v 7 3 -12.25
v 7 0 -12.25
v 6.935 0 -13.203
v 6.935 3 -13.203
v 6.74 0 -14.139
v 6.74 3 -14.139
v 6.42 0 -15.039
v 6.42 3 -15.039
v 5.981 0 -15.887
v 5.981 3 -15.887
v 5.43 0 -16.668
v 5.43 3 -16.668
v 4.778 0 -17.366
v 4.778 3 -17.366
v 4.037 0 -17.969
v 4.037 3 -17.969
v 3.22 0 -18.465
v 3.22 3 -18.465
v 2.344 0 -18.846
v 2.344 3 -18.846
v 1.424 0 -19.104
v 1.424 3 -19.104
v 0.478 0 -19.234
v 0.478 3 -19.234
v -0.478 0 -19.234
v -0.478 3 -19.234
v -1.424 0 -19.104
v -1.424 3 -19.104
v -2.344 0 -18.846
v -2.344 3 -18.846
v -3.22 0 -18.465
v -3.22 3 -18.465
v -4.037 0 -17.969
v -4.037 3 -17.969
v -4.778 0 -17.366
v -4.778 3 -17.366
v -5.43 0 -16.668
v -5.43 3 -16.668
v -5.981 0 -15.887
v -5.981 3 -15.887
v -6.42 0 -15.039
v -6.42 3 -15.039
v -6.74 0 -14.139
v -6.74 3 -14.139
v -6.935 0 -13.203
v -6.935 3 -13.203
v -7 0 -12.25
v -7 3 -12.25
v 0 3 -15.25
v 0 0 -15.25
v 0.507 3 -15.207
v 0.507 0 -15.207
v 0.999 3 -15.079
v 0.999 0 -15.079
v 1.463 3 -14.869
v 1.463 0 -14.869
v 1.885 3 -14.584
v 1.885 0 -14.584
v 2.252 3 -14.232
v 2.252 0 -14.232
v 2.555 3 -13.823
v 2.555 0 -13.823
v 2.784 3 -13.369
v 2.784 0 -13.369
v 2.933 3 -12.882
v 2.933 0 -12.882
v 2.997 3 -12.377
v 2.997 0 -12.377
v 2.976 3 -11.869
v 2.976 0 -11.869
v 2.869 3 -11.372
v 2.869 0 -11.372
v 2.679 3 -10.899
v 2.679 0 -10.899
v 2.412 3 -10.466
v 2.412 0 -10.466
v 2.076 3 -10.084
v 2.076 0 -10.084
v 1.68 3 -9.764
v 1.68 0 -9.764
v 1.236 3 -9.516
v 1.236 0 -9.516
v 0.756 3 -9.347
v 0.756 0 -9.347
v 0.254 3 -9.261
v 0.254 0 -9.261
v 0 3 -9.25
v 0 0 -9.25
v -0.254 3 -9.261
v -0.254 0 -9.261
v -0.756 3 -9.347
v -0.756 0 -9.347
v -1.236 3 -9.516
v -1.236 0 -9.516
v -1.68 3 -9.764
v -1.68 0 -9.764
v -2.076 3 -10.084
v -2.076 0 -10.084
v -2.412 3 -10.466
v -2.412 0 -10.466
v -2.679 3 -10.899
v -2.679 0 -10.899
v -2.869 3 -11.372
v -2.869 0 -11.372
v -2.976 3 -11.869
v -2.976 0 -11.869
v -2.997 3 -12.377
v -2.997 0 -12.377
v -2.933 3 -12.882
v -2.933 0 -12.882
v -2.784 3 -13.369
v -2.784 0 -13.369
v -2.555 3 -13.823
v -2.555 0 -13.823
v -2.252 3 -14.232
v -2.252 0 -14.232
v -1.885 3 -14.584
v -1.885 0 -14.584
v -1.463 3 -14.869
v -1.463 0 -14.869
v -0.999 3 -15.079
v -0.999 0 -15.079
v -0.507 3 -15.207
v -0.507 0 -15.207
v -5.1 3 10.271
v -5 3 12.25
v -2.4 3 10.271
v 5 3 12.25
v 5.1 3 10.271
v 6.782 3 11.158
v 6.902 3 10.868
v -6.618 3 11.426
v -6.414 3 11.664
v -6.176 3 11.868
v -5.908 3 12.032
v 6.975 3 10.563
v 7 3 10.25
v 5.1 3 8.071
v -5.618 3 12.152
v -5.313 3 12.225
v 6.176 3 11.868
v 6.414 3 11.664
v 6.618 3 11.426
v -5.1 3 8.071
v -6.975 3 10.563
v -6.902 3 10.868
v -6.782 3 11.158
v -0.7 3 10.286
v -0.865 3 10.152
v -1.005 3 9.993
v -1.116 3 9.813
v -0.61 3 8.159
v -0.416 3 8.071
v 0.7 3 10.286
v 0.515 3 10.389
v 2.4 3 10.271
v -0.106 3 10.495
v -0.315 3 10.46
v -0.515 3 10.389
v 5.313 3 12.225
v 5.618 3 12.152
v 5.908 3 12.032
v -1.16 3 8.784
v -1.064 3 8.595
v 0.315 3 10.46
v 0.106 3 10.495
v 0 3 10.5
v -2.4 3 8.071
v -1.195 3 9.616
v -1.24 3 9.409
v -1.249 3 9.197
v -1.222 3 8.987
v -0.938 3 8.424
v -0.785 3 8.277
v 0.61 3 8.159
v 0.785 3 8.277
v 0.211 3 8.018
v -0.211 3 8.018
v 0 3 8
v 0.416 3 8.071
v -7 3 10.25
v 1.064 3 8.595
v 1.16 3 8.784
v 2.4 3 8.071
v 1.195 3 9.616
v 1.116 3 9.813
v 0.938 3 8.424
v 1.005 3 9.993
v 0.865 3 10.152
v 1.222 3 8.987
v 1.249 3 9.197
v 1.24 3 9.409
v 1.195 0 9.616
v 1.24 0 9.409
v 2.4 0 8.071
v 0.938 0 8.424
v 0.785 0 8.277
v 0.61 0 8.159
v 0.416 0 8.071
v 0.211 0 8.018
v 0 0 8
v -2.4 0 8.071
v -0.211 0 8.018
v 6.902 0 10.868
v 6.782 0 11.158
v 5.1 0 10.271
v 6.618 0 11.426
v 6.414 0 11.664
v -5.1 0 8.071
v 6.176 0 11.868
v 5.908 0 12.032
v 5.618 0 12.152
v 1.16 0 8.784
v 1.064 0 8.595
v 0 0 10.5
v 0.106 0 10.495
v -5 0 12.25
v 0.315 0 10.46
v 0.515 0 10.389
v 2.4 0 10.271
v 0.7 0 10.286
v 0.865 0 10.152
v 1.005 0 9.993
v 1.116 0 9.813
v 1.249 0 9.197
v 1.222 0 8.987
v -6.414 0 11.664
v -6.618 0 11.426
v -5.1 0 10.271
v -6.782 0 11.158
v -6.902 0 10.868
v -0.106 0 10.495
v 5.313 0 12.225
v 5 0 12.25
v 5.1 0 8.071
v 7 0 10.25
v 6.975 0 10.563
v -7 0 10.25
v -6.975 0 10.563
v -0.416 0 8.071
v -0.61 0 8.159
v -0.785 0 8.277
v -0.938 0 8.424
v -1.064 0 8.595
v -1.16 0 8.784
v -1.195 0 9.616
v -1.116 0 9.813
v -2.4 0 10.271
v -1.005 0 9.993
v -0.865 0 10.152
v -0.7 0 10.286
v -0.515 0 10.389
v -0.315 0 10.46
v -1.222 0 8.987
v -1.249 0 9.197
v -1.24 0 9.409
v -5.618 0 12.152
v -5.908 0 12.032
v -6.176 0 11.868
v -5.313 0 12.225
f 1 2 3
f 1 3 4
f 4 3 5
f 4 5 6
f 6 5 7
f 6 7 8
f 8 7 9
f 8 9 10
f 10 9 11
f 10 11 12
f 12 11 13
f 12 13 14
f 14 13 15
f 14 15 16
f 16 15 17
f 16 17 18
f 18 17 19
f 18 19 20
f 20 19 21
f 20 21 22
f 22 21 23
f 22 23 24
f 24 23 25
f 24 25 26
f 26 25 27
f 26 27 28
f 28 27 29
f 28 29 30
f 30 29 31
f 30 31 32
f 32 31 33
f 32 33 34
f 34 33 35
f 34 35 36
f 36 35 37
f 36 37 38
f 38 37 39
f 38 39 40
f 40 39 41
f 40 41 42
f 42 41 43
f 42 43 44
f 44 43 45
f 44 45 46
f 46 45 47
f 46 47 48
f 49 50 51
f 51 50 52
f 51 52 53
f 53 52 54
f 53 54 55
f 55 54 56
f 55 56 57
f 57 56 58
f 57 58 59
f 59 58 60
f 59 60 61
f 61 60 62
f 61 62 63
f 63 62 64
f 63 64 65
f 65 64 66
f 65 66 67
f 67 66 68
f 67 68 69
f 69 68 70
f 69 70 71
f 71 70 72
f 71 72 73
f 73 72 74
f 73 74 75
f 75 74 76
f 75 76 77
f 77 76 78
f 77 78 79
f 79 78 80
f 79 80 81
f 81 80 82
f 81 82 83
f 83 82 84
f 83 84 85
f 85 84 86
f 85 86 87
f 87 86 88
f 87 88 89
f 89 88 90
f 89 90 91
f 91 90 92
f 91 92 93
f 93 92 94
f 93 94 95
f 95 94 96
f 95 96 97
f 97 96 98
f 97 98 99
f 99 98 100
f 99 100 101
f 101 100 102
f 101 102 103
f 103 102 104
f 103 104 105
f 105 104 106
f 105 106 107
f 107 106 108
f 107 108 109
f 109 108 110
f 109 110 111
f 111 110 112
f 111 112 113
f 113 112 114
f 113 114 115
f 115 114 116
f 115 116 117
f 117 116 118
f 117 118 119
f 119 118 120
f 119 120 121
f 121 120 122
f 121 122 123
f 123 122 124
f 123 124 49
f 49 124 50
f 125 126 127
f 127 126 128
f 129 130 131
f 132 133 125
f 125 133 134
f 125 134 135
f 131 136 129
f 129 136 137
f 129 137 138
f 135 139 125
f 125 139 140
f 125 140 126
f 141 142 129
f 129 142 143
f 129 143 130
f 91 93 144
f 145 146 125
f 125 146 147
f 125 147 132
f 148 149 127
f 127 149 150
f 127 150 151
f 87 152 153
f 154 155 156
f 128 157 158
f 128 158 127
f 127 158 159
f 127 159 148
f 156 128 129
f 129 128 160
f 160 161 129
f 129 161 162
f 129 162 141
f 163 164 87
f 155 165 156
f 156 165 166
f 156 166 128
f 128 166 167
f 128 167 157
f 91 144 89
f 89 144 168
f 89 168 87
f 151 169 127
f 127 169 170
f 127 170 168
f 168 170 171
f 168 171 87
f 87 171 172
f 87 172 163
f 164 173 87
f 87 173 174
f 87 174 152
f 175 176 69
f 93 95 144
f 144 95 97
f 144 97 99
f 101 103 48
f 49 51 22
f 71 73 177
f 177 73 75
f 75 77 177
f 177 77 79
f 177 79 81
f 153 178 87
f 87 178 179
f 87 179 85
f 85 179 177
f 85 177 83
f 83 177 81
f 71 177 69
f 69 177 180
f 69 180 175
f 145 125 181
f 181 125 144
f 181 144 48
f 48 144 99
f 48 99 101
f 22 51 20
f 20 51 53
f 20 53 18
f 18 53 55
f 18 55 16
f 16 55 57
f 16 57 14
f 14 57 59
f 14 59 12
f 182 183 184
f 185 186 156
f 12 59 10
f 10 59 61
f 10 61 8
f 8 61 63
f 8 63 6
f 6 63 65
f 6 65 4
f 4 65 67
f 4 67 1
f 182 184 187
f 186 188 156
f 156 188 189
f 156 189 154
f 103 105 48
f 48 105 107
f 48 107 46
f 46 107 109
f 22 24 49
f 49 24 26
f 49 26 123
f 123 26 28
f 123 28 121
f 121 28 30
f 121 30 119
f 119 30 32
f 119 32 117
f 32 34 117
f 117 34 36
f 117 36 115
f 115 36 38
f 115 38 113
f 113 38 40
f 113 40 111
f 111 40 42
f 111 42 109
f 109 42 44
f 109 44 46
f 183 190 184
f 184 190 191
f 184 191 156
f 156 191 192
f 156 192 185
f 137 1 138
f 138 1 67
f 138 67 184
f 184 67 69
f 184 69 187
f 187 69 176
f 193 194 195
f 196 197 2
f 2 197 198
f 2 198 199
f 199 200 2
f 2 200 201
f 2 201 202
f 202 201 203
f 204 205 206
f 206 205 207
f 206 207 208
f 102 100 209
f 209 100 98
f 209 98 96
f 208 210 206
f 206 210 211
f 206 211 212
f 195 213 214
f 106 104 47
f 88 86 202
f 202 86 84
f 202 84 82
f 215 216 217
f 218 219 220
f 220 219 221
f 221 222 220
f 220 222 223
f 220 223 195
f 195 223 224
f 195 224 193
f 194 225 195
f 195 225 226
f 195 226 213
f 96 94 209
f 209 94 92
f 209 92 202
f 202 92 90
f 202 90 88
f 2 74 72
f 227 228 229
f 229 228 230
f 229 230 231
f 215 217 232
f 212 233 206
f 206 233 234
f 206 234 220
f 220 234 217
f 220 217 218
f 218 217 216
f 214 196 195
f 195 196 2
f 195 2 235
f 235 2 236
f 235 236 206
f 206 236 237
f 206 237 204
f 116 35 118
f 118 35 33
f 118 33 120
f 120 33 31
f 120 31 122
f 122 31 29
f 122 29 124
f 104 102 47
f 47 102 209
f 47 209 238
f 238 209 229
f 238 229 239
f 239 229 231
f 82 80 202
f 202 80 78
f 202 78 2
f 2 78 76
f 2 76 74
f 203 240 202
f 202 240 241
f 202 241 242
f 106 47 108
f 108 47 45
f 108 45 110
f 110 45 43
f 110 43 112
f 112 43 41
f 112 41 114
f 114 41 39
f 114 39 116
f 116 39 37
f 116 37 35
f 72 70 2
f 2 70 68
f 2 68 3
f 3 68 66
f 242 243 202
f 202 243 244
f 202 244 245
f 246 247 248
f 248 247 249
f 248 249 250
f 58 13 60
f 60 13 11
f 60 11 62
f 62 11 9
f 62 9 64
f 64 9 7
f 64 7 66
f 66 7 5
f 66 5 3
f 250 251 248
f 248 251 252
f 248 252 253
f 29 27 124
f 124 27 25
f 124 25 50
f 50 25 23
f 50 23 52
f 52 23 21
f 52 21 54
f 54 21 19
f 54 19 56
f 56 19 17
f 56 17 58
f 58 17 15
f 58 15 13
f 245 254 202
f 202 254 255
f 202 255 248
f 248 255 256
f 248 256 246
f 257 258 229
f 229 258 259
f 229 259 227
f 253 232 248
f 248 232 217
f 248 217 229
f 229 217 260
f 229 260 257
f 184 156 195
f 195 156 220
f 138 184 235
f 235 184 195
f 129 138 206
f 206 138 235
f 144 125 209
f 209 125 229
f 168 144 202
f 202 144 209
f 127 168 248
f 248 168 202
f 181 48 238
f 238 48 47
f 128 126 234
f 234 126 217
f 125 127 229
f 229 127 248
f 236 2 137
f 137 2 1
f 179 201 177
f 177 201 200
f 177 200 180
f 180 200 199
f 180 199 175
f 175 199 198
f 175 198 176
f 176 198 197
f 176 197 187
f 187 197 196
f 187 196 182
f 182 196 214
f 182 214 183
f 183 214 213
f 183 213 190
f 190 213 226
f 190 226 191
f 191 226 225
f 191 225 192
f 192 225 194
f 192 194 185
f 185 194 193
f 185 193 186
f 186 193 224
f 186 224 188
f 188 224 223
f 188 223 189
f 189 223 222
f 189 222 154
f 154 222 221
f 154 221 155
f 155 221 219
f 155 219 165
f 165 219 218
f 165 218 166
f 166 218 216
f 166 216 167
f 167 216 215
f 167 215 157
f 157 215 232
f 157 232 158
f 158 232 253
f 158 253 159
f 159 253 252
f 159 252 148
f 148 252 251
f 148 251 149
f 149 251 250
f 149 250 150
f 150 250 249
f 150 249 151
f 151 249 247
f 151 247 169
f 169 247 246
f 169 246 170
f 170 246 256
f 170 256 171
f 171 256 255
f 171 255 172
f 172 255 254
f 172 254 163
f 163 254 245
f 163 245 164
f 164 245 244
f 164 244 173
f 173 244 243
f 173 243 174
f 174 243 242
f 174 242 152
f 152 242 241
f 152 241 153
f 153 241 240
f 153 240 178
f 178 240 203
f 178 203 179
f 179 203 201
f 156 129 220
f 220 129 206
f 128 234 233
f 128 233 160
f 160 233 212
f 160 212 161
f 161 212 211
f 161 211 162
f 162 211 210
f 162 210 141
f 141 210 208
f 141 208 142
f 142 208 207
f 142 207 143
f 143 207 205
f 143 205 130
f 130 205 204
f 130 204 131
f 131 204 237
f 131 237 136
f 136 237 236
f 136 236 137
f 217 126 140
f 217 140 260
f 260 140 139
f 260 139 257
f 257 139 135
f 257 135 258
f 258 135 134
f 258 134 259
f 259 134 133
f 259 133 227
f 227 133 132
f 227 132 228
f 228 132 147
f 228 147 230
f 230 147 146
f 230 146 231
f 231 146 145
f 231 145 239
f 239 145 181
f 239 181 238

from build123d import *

# Parameters (mm, degrees)
SKETCH_1_R      = 7
SKETCH_1_R_2    = 3
EXTRUDE_2_DEPTH = 3
SKETCH_1_4_W    = 2.7
SKETCH_1_4_H    = 2.2
SKETCH_1_4_R    = 1.25
EXTRUDE_3_DEPTH = 3
FILLET_2_R      = 2


with BuildPart() as part:
    # 草图1 → 凸台-拉伸2 (new body)
    with BuildSketch(Plane(origin=(0, 0, 0), x_dir=(1, 0, 0), z_dir=(0, 1, 0))):
        with Locations((0, 12.25)):
            Circle(SKETCH_1_R)
        with Locations((0, 12.25)):
            Circle(SKETCH_1_R_2, mode=Mode.SUBTRACT)
    extrude(amount=EXTRUDE_2_DEPTH)

    # 草图1<4> → 凸台-拉伸3 (add)
    with BuildSketch(Plane(origin=(0, 0, 0), x_dir=(1, 0, 0), z_dir=(0, 1, 0))):
        with BuildLine():
            ThreePointArc((7, 12.25), (4.949747468, 7.300252532), (0, 5.25))
            ThreePointArc((0, 5.25), (-4.949747468, 7.300252532), (-7, 12.25))
            Line((-7, 12.25), (-7, -12.25))
            Line((-7, -12.25), (7, -12.25))
            Line((7, -12.25), (7, 12.25))
        make_face()
        with Locations((-3.75, -9.170716156)):
            Rectangle(SKETCH_1_4_W, SKETCH_1_4_H, mode=Mode.SUBTRACT)
        with Locations((0, -9.25)):
            Circle(SKETCH_1_4_R, mode=Mode.SUBTRACT)
        with Locations((3.75, -9.170716156)):
            Rectangle(SKETCH_1_4_W, SKETCH_1_4_H, mode=Mode.SUBTRACT)
    extrude(amount=EXTRUDE_3_DEPTH)

    # 圆角2
    fillet_2_edges = [part.edges().sort_by_distance(p)[0] for p in [
        (7, 1.5, 12.25),
        (-7, 1.5, 12.25),
    ]]
    fillet(fillet_2_edges, radius=FILLET_2_R)


solid = part.part
